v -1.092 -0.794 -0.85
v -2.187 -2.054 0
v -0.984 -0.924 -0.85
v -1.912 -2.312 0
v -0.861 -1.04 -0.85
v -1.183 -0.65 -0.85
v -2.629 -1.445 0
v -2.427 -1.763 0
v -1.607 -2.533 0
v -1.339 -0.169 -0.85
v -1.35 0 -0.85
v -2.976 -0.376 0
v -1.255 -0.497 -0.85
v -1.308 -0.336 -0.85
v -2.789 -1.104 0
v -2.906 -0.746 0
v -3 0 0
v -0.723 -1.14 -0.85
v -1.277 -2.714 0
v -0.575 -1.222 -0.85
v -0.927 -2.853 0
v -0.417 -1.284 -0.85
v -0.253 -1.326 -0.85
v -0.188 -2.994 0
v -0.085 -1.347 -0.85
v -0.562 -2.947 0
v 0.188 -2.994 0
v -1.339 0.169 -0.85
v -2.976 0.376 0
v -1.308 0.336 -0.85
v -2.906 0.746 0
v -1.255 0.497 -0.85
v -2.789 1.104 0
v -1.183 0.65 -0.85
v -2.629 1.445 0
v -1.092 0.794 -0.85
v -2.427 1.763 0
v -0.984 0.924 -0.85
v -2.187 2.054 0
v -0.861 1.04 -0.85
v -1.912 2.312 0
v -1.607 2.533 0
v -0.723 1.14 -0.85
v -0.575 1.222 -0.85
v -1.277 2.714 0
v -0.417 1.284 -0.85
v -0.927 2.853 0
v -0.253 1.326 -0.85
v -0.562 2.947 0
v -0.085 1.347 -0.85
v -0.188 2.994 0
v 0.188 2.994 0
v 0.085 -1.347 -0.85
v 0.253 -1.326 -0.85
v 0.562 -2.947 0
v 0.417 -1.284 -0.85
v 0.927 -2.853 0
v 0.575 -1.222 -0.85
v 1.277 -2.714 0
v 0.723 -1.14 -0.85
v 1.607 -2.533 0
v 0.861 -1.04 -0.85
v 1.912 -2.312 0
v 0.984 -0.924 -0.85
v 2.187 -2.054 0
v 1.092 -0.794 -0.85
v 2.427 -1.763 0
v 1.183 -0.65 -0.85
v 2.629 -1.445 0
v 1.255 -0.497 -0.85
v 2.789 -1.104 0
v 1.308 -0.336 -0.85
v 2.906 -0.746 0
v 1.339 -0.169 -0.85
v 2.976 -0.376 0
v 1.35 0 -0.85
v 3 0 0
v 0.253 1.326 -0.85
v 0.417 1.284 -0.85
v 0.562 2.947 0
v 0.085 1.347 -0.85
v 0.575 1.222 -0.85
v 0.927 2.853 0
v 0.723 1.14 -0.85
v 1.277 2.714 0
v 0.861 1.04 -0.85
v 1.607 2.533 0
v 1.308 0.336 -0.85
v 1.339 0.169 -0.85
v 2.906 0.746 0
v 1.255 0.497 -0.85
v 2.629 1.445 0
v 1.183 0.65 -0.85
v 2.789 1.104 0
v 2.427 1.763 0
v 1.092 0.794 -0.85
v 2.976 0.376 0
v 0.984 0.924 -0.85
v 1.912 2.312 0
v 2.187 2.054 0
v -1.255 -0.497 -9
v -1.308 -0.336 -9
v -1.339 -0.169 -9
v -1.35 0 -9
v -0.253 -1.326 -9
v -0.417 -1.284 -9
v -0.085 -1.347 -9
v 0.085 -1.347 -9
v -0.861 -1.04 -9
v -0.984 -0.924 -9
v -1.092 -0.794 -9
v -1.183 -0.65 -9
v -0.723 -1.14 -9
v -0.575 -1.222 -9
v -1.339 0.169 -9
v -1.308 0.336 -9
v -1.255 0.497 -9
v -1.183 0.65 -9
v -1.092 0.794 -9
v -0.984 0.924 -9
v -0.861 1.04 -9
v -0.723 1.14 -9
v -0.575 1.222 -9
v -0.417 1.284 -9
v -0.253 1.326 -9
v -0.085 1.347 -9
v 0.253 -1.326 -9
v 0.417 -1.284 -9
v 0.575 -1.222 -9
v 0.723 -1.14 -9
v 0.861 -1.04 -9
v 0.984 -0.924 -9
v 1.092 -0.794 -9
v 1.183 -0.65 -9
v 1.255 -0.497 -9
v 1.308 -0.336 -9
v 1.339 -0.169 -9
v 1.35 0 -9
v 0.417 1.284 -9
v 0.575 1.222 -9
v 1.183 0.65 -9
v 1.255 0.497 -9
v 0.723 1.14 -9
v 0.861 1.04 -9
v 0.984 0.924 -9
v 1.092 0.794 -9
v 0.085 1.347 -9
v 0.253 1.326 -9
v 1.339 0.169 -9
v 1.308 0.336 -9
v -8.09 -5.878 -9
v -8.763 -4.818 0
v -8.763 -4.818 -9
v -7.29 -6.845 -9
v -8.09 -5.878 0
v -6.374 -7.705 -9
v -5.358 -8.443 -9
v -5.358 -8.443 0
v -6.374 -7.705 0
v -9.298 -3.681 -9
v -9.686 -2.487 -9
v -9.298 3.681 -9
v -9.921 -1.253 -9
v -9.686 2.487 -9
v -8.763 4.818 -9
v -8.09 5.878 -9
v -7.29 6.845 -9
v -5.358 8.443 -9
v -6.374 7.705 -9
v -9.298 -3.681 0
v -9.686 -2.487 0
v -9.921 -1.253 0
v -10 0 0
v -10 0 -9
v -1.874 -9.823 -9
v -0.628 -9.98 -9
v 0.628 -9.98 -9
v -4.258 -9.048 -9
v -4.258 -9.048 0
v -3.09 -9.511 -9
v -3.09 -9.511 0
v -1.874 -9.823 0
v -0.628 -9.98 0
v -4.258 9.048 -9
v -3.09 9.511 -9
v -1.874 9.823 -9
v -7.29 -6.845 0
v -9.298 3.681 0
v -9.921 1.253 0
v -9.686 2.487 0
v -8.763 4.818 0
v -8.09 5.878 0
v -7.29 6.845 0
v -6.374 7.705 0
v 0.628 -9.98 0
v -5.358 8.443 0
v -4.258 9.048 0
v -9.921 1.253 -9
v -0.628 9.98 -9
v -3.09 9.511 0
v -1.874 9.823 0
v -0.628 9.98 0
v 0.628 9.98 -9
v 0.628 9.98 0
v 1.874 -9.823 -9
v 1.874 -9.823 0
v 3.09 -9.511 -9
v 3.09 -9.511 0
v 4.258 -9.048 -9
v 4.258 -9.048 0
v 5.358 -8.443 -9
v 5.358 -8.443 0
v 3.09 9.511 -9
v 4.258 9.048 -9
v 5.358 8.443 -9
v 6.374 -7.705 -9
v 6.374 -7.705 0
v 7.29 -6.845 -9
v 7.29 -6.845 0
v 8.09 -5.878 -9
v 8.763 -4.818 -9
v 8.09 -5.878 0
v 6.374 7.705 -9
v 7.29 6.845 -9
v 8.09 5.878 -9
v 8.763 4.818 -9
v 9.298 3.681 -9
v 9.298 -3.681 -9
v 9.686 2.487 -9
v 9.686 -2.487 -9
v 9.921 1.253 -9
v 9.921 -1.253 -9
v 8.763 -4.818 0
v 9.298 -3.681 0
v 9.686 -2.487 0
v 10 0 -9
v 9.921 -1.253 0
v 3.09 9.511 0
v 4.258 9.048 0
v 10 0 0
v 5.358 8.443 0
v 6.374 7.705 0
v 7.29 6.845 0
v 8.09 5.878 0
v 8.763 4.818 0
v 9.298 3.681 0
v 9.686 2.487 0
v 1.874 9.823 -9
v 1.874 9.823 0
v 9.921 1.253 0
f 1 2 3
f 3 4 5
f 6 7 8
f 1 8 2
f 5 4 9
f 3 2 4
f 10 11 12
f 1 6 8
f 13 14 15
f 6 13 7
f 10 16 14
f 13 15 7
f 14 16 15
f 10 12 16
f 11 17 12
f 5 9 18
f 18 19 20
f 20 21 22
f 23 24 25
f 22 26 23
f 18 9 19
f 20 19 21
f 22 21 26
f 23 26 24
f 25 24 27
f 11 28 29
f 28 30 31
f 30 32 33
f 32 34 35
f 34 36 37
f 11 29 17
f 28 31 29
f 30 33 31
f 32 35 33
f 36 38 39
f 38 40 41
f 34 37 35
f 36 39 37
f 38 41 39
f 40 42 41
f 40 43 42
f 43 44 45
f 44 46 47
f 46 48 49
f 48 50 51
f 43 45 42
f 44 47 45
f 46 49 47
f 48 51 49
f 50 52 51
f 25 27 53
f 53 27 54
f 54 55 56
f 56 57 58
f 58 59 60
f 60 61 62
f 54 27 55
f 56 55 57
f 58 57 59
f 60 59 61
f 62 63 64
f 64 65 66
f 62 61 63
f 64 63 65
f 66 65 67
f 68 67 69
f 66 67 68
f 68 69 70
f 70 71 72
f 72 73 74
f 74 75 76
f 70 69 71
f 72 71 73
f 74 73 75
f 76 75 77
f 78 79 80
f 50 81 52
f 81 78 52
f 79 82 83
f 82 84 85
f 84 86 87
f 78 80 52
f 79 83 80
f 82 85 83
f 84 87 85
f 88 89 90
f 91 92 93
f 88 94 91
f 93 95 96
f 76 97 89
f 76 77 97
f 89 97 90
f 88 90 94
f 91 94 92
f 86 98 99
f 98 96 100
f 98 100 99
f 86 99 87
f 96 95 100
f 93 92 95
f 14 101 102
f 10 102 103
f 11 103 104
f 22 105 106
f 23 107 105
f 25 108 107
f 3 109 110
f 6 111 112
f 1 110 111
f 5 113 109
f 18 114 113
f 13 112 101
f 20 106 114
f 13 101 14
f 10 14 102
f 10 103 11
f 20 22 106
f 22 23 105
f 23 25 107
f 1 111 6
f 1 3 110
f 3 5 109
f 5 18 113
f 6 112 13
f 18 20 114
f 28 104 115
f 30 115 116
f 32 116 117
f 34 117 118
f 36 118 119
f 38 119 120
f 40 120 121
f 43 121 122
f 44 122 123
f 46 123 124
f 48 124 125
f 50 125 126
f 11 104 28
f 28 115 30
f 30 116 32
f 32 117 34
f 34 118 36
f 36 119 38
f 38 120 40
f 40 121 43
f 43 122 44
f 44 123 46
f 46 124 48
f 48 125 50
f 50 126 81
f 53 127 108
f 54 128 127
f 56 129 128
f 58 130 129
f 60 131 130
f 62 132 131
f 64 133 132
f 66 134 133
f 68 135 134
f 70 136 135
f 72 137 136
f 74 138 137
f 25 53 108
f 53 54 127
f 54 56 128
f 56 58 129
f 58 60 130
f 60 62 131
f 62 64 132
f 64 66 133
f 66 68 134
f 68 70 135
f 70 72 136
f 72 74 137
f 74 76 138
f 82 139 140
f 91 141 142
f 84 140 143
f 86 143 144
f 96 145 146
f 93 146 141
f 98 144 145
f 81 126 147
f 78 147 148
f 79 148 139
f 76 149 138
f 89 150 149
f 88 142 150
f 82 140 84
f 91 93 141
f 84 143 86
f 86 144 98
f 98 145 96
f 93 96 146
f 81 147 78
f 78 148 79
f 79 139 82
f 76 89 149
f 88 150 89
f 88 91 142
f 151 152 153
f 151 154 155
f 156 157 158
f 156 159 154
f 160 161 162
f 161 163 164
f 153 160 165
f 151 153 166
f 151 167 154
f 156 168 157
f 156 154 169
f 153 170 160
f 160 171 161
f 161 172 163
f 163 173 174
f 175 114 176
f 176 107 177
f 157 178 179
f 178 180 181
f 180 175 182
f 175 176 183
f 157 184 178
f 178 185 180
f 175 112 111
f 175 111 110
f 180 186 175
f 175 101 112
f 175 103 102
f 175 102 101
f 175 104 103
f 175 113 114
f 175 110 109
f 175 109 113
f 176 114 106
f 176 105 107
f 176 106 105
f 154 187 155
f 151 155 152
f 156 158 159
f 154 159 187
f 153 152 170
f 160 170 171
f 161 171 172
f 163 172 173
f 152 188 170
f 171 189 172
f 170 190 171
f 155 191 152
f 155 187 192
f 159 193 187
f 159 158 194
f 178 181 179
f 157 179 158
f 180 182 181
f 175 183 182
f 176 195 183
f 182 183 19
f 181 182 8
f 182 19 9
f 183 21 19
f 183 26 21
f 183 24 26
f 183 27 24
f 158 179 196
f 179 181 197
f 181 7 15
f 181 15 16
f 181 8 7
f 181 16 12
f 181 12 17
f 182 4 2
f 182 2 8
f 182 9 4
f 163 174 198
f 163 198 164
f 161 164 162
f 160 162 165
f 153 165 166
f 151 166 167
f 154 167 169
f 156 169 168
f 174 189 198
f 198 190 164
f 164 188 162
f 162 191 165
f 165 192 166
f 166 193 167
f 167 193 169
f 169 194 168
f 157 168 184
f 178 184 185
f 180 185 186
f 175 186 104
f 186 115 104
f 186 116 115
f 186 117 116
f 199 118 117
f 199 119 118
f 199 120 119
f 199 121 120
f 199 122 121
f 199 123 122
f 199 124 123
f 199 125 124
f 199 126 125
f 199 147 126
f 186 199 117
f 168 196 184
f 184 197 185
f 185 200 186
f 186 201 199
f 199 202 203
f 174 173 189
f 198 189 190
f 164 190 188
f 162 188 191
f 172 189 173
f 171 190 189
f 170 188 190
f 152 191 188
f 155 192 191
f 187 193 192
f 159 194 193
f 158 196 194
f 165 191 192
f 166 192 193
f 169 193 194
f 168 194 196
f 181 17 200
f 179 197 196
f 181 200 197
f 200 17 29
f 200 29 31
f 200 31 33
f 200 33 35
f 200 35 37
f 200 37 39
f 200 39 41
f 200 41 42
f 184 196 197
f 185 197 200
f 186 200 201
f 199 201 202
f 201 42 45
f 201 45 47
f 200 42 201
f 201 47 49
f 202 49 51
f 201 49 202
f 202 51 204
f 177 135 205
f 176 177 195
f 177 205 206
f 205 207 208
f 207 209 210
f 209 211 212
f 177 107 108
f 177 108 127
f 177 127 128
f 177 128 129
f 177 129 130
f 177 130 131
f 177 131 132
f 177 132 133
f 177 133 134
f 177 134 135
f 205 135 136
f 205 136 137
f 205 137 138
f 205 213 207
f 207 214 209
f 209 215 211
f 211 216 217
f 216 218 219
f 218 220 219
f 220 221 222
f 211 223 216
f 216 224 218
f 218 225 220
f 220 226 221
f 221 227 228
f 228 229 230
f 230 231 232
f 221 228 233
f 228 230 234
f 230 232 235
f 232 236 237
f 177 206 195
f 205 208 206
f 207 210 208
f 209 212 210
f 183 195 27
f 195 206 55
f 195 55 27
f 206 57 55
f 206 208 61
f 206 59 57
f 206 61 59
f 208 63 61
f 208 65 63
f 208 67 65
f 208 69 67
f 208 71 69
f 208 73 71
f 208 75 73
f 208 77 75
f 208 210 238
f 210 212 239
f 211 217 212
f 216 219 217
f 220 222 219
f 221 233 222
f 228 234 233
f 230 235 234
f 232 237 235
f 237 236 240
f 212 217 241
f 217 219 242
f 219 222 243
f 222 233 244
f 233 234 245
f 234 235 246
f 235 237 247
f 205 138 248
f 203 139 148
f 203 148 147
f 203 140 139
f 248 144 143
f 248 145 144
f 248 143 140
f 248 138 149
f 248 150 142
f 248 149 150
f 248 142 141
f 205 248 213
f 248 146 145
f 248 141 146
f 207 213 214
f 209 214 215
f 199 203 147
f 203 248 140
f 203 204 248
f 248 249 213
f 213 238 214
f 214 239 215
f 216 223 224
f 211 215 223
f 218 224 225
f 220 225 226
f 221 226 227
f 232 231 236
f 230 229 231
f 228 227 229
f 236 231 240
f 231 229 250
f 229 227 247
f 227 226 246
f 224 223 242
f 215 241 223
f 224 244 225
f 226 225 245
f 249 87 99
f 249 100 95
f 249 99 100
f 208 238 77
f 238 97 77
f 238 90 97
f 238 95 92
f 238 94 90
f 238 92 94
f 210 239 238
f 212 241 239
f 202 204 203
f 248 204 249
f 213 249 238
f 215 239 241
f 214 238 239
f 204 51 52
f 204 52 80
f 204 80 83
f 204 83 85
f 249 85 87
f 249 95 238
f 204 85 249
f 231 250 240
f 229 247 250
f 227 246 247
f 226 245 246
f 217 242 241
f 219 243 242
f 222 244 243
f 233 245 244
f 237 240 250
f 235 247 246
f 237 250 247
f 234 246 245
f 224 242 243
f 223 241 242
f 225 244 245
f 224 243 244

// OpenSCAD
$fn = 50;

difference() {
	union() {
		translate(v = [0, 0, -9.0]) {
			cylinder(h = 9, r = 10.0);
		}
	}
	union() {
		translate(v = [0, 0, 0]) {
			rotate(a = [0, 0, 0]) {
				difference() {
					union() {
						translate(v = [0, 0, -12.0]) {
							cylinder(h = 12, r = 1.0);
						}
						translate(v = [0, 0, -0.85]) {
							cylinder(h = 0.85, r1 = 1.35, r2 = 3.0);
						}
						translate(v = [0, 0, -12.0]) {
							cylinder(h = 12, r = 1.35);
						}
						translate(v = [0, 0, -12.0]) {
							cylinder(h = 12, r = 1.0);
						}
					}
					union();
				}
			}
		}
	}
}
